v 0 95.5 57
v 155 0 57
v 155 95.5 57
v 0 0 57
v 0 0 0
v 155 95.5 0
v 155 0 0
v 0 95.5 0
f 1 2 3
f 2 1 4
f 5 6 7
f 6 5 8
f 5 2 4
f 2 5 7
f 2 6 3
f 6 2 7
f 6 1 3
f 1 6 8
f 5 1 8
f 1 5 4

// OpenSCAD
// Opentrons Absorbance Plate Reader Module Lid
// loadName: opentrons_flex_lid_absorbance_plate_reader_module
// Auto-generated by labware_to_stl.py from Opentrons V2 labware definition

$fn = 64;

difference() {
    // ── Labware body ──────────────────────────────────────────────
    cube([155.0000, 95.5000, 57.0000]);

    // ── Well cutouts ──────────────────────────────────────────────
}
